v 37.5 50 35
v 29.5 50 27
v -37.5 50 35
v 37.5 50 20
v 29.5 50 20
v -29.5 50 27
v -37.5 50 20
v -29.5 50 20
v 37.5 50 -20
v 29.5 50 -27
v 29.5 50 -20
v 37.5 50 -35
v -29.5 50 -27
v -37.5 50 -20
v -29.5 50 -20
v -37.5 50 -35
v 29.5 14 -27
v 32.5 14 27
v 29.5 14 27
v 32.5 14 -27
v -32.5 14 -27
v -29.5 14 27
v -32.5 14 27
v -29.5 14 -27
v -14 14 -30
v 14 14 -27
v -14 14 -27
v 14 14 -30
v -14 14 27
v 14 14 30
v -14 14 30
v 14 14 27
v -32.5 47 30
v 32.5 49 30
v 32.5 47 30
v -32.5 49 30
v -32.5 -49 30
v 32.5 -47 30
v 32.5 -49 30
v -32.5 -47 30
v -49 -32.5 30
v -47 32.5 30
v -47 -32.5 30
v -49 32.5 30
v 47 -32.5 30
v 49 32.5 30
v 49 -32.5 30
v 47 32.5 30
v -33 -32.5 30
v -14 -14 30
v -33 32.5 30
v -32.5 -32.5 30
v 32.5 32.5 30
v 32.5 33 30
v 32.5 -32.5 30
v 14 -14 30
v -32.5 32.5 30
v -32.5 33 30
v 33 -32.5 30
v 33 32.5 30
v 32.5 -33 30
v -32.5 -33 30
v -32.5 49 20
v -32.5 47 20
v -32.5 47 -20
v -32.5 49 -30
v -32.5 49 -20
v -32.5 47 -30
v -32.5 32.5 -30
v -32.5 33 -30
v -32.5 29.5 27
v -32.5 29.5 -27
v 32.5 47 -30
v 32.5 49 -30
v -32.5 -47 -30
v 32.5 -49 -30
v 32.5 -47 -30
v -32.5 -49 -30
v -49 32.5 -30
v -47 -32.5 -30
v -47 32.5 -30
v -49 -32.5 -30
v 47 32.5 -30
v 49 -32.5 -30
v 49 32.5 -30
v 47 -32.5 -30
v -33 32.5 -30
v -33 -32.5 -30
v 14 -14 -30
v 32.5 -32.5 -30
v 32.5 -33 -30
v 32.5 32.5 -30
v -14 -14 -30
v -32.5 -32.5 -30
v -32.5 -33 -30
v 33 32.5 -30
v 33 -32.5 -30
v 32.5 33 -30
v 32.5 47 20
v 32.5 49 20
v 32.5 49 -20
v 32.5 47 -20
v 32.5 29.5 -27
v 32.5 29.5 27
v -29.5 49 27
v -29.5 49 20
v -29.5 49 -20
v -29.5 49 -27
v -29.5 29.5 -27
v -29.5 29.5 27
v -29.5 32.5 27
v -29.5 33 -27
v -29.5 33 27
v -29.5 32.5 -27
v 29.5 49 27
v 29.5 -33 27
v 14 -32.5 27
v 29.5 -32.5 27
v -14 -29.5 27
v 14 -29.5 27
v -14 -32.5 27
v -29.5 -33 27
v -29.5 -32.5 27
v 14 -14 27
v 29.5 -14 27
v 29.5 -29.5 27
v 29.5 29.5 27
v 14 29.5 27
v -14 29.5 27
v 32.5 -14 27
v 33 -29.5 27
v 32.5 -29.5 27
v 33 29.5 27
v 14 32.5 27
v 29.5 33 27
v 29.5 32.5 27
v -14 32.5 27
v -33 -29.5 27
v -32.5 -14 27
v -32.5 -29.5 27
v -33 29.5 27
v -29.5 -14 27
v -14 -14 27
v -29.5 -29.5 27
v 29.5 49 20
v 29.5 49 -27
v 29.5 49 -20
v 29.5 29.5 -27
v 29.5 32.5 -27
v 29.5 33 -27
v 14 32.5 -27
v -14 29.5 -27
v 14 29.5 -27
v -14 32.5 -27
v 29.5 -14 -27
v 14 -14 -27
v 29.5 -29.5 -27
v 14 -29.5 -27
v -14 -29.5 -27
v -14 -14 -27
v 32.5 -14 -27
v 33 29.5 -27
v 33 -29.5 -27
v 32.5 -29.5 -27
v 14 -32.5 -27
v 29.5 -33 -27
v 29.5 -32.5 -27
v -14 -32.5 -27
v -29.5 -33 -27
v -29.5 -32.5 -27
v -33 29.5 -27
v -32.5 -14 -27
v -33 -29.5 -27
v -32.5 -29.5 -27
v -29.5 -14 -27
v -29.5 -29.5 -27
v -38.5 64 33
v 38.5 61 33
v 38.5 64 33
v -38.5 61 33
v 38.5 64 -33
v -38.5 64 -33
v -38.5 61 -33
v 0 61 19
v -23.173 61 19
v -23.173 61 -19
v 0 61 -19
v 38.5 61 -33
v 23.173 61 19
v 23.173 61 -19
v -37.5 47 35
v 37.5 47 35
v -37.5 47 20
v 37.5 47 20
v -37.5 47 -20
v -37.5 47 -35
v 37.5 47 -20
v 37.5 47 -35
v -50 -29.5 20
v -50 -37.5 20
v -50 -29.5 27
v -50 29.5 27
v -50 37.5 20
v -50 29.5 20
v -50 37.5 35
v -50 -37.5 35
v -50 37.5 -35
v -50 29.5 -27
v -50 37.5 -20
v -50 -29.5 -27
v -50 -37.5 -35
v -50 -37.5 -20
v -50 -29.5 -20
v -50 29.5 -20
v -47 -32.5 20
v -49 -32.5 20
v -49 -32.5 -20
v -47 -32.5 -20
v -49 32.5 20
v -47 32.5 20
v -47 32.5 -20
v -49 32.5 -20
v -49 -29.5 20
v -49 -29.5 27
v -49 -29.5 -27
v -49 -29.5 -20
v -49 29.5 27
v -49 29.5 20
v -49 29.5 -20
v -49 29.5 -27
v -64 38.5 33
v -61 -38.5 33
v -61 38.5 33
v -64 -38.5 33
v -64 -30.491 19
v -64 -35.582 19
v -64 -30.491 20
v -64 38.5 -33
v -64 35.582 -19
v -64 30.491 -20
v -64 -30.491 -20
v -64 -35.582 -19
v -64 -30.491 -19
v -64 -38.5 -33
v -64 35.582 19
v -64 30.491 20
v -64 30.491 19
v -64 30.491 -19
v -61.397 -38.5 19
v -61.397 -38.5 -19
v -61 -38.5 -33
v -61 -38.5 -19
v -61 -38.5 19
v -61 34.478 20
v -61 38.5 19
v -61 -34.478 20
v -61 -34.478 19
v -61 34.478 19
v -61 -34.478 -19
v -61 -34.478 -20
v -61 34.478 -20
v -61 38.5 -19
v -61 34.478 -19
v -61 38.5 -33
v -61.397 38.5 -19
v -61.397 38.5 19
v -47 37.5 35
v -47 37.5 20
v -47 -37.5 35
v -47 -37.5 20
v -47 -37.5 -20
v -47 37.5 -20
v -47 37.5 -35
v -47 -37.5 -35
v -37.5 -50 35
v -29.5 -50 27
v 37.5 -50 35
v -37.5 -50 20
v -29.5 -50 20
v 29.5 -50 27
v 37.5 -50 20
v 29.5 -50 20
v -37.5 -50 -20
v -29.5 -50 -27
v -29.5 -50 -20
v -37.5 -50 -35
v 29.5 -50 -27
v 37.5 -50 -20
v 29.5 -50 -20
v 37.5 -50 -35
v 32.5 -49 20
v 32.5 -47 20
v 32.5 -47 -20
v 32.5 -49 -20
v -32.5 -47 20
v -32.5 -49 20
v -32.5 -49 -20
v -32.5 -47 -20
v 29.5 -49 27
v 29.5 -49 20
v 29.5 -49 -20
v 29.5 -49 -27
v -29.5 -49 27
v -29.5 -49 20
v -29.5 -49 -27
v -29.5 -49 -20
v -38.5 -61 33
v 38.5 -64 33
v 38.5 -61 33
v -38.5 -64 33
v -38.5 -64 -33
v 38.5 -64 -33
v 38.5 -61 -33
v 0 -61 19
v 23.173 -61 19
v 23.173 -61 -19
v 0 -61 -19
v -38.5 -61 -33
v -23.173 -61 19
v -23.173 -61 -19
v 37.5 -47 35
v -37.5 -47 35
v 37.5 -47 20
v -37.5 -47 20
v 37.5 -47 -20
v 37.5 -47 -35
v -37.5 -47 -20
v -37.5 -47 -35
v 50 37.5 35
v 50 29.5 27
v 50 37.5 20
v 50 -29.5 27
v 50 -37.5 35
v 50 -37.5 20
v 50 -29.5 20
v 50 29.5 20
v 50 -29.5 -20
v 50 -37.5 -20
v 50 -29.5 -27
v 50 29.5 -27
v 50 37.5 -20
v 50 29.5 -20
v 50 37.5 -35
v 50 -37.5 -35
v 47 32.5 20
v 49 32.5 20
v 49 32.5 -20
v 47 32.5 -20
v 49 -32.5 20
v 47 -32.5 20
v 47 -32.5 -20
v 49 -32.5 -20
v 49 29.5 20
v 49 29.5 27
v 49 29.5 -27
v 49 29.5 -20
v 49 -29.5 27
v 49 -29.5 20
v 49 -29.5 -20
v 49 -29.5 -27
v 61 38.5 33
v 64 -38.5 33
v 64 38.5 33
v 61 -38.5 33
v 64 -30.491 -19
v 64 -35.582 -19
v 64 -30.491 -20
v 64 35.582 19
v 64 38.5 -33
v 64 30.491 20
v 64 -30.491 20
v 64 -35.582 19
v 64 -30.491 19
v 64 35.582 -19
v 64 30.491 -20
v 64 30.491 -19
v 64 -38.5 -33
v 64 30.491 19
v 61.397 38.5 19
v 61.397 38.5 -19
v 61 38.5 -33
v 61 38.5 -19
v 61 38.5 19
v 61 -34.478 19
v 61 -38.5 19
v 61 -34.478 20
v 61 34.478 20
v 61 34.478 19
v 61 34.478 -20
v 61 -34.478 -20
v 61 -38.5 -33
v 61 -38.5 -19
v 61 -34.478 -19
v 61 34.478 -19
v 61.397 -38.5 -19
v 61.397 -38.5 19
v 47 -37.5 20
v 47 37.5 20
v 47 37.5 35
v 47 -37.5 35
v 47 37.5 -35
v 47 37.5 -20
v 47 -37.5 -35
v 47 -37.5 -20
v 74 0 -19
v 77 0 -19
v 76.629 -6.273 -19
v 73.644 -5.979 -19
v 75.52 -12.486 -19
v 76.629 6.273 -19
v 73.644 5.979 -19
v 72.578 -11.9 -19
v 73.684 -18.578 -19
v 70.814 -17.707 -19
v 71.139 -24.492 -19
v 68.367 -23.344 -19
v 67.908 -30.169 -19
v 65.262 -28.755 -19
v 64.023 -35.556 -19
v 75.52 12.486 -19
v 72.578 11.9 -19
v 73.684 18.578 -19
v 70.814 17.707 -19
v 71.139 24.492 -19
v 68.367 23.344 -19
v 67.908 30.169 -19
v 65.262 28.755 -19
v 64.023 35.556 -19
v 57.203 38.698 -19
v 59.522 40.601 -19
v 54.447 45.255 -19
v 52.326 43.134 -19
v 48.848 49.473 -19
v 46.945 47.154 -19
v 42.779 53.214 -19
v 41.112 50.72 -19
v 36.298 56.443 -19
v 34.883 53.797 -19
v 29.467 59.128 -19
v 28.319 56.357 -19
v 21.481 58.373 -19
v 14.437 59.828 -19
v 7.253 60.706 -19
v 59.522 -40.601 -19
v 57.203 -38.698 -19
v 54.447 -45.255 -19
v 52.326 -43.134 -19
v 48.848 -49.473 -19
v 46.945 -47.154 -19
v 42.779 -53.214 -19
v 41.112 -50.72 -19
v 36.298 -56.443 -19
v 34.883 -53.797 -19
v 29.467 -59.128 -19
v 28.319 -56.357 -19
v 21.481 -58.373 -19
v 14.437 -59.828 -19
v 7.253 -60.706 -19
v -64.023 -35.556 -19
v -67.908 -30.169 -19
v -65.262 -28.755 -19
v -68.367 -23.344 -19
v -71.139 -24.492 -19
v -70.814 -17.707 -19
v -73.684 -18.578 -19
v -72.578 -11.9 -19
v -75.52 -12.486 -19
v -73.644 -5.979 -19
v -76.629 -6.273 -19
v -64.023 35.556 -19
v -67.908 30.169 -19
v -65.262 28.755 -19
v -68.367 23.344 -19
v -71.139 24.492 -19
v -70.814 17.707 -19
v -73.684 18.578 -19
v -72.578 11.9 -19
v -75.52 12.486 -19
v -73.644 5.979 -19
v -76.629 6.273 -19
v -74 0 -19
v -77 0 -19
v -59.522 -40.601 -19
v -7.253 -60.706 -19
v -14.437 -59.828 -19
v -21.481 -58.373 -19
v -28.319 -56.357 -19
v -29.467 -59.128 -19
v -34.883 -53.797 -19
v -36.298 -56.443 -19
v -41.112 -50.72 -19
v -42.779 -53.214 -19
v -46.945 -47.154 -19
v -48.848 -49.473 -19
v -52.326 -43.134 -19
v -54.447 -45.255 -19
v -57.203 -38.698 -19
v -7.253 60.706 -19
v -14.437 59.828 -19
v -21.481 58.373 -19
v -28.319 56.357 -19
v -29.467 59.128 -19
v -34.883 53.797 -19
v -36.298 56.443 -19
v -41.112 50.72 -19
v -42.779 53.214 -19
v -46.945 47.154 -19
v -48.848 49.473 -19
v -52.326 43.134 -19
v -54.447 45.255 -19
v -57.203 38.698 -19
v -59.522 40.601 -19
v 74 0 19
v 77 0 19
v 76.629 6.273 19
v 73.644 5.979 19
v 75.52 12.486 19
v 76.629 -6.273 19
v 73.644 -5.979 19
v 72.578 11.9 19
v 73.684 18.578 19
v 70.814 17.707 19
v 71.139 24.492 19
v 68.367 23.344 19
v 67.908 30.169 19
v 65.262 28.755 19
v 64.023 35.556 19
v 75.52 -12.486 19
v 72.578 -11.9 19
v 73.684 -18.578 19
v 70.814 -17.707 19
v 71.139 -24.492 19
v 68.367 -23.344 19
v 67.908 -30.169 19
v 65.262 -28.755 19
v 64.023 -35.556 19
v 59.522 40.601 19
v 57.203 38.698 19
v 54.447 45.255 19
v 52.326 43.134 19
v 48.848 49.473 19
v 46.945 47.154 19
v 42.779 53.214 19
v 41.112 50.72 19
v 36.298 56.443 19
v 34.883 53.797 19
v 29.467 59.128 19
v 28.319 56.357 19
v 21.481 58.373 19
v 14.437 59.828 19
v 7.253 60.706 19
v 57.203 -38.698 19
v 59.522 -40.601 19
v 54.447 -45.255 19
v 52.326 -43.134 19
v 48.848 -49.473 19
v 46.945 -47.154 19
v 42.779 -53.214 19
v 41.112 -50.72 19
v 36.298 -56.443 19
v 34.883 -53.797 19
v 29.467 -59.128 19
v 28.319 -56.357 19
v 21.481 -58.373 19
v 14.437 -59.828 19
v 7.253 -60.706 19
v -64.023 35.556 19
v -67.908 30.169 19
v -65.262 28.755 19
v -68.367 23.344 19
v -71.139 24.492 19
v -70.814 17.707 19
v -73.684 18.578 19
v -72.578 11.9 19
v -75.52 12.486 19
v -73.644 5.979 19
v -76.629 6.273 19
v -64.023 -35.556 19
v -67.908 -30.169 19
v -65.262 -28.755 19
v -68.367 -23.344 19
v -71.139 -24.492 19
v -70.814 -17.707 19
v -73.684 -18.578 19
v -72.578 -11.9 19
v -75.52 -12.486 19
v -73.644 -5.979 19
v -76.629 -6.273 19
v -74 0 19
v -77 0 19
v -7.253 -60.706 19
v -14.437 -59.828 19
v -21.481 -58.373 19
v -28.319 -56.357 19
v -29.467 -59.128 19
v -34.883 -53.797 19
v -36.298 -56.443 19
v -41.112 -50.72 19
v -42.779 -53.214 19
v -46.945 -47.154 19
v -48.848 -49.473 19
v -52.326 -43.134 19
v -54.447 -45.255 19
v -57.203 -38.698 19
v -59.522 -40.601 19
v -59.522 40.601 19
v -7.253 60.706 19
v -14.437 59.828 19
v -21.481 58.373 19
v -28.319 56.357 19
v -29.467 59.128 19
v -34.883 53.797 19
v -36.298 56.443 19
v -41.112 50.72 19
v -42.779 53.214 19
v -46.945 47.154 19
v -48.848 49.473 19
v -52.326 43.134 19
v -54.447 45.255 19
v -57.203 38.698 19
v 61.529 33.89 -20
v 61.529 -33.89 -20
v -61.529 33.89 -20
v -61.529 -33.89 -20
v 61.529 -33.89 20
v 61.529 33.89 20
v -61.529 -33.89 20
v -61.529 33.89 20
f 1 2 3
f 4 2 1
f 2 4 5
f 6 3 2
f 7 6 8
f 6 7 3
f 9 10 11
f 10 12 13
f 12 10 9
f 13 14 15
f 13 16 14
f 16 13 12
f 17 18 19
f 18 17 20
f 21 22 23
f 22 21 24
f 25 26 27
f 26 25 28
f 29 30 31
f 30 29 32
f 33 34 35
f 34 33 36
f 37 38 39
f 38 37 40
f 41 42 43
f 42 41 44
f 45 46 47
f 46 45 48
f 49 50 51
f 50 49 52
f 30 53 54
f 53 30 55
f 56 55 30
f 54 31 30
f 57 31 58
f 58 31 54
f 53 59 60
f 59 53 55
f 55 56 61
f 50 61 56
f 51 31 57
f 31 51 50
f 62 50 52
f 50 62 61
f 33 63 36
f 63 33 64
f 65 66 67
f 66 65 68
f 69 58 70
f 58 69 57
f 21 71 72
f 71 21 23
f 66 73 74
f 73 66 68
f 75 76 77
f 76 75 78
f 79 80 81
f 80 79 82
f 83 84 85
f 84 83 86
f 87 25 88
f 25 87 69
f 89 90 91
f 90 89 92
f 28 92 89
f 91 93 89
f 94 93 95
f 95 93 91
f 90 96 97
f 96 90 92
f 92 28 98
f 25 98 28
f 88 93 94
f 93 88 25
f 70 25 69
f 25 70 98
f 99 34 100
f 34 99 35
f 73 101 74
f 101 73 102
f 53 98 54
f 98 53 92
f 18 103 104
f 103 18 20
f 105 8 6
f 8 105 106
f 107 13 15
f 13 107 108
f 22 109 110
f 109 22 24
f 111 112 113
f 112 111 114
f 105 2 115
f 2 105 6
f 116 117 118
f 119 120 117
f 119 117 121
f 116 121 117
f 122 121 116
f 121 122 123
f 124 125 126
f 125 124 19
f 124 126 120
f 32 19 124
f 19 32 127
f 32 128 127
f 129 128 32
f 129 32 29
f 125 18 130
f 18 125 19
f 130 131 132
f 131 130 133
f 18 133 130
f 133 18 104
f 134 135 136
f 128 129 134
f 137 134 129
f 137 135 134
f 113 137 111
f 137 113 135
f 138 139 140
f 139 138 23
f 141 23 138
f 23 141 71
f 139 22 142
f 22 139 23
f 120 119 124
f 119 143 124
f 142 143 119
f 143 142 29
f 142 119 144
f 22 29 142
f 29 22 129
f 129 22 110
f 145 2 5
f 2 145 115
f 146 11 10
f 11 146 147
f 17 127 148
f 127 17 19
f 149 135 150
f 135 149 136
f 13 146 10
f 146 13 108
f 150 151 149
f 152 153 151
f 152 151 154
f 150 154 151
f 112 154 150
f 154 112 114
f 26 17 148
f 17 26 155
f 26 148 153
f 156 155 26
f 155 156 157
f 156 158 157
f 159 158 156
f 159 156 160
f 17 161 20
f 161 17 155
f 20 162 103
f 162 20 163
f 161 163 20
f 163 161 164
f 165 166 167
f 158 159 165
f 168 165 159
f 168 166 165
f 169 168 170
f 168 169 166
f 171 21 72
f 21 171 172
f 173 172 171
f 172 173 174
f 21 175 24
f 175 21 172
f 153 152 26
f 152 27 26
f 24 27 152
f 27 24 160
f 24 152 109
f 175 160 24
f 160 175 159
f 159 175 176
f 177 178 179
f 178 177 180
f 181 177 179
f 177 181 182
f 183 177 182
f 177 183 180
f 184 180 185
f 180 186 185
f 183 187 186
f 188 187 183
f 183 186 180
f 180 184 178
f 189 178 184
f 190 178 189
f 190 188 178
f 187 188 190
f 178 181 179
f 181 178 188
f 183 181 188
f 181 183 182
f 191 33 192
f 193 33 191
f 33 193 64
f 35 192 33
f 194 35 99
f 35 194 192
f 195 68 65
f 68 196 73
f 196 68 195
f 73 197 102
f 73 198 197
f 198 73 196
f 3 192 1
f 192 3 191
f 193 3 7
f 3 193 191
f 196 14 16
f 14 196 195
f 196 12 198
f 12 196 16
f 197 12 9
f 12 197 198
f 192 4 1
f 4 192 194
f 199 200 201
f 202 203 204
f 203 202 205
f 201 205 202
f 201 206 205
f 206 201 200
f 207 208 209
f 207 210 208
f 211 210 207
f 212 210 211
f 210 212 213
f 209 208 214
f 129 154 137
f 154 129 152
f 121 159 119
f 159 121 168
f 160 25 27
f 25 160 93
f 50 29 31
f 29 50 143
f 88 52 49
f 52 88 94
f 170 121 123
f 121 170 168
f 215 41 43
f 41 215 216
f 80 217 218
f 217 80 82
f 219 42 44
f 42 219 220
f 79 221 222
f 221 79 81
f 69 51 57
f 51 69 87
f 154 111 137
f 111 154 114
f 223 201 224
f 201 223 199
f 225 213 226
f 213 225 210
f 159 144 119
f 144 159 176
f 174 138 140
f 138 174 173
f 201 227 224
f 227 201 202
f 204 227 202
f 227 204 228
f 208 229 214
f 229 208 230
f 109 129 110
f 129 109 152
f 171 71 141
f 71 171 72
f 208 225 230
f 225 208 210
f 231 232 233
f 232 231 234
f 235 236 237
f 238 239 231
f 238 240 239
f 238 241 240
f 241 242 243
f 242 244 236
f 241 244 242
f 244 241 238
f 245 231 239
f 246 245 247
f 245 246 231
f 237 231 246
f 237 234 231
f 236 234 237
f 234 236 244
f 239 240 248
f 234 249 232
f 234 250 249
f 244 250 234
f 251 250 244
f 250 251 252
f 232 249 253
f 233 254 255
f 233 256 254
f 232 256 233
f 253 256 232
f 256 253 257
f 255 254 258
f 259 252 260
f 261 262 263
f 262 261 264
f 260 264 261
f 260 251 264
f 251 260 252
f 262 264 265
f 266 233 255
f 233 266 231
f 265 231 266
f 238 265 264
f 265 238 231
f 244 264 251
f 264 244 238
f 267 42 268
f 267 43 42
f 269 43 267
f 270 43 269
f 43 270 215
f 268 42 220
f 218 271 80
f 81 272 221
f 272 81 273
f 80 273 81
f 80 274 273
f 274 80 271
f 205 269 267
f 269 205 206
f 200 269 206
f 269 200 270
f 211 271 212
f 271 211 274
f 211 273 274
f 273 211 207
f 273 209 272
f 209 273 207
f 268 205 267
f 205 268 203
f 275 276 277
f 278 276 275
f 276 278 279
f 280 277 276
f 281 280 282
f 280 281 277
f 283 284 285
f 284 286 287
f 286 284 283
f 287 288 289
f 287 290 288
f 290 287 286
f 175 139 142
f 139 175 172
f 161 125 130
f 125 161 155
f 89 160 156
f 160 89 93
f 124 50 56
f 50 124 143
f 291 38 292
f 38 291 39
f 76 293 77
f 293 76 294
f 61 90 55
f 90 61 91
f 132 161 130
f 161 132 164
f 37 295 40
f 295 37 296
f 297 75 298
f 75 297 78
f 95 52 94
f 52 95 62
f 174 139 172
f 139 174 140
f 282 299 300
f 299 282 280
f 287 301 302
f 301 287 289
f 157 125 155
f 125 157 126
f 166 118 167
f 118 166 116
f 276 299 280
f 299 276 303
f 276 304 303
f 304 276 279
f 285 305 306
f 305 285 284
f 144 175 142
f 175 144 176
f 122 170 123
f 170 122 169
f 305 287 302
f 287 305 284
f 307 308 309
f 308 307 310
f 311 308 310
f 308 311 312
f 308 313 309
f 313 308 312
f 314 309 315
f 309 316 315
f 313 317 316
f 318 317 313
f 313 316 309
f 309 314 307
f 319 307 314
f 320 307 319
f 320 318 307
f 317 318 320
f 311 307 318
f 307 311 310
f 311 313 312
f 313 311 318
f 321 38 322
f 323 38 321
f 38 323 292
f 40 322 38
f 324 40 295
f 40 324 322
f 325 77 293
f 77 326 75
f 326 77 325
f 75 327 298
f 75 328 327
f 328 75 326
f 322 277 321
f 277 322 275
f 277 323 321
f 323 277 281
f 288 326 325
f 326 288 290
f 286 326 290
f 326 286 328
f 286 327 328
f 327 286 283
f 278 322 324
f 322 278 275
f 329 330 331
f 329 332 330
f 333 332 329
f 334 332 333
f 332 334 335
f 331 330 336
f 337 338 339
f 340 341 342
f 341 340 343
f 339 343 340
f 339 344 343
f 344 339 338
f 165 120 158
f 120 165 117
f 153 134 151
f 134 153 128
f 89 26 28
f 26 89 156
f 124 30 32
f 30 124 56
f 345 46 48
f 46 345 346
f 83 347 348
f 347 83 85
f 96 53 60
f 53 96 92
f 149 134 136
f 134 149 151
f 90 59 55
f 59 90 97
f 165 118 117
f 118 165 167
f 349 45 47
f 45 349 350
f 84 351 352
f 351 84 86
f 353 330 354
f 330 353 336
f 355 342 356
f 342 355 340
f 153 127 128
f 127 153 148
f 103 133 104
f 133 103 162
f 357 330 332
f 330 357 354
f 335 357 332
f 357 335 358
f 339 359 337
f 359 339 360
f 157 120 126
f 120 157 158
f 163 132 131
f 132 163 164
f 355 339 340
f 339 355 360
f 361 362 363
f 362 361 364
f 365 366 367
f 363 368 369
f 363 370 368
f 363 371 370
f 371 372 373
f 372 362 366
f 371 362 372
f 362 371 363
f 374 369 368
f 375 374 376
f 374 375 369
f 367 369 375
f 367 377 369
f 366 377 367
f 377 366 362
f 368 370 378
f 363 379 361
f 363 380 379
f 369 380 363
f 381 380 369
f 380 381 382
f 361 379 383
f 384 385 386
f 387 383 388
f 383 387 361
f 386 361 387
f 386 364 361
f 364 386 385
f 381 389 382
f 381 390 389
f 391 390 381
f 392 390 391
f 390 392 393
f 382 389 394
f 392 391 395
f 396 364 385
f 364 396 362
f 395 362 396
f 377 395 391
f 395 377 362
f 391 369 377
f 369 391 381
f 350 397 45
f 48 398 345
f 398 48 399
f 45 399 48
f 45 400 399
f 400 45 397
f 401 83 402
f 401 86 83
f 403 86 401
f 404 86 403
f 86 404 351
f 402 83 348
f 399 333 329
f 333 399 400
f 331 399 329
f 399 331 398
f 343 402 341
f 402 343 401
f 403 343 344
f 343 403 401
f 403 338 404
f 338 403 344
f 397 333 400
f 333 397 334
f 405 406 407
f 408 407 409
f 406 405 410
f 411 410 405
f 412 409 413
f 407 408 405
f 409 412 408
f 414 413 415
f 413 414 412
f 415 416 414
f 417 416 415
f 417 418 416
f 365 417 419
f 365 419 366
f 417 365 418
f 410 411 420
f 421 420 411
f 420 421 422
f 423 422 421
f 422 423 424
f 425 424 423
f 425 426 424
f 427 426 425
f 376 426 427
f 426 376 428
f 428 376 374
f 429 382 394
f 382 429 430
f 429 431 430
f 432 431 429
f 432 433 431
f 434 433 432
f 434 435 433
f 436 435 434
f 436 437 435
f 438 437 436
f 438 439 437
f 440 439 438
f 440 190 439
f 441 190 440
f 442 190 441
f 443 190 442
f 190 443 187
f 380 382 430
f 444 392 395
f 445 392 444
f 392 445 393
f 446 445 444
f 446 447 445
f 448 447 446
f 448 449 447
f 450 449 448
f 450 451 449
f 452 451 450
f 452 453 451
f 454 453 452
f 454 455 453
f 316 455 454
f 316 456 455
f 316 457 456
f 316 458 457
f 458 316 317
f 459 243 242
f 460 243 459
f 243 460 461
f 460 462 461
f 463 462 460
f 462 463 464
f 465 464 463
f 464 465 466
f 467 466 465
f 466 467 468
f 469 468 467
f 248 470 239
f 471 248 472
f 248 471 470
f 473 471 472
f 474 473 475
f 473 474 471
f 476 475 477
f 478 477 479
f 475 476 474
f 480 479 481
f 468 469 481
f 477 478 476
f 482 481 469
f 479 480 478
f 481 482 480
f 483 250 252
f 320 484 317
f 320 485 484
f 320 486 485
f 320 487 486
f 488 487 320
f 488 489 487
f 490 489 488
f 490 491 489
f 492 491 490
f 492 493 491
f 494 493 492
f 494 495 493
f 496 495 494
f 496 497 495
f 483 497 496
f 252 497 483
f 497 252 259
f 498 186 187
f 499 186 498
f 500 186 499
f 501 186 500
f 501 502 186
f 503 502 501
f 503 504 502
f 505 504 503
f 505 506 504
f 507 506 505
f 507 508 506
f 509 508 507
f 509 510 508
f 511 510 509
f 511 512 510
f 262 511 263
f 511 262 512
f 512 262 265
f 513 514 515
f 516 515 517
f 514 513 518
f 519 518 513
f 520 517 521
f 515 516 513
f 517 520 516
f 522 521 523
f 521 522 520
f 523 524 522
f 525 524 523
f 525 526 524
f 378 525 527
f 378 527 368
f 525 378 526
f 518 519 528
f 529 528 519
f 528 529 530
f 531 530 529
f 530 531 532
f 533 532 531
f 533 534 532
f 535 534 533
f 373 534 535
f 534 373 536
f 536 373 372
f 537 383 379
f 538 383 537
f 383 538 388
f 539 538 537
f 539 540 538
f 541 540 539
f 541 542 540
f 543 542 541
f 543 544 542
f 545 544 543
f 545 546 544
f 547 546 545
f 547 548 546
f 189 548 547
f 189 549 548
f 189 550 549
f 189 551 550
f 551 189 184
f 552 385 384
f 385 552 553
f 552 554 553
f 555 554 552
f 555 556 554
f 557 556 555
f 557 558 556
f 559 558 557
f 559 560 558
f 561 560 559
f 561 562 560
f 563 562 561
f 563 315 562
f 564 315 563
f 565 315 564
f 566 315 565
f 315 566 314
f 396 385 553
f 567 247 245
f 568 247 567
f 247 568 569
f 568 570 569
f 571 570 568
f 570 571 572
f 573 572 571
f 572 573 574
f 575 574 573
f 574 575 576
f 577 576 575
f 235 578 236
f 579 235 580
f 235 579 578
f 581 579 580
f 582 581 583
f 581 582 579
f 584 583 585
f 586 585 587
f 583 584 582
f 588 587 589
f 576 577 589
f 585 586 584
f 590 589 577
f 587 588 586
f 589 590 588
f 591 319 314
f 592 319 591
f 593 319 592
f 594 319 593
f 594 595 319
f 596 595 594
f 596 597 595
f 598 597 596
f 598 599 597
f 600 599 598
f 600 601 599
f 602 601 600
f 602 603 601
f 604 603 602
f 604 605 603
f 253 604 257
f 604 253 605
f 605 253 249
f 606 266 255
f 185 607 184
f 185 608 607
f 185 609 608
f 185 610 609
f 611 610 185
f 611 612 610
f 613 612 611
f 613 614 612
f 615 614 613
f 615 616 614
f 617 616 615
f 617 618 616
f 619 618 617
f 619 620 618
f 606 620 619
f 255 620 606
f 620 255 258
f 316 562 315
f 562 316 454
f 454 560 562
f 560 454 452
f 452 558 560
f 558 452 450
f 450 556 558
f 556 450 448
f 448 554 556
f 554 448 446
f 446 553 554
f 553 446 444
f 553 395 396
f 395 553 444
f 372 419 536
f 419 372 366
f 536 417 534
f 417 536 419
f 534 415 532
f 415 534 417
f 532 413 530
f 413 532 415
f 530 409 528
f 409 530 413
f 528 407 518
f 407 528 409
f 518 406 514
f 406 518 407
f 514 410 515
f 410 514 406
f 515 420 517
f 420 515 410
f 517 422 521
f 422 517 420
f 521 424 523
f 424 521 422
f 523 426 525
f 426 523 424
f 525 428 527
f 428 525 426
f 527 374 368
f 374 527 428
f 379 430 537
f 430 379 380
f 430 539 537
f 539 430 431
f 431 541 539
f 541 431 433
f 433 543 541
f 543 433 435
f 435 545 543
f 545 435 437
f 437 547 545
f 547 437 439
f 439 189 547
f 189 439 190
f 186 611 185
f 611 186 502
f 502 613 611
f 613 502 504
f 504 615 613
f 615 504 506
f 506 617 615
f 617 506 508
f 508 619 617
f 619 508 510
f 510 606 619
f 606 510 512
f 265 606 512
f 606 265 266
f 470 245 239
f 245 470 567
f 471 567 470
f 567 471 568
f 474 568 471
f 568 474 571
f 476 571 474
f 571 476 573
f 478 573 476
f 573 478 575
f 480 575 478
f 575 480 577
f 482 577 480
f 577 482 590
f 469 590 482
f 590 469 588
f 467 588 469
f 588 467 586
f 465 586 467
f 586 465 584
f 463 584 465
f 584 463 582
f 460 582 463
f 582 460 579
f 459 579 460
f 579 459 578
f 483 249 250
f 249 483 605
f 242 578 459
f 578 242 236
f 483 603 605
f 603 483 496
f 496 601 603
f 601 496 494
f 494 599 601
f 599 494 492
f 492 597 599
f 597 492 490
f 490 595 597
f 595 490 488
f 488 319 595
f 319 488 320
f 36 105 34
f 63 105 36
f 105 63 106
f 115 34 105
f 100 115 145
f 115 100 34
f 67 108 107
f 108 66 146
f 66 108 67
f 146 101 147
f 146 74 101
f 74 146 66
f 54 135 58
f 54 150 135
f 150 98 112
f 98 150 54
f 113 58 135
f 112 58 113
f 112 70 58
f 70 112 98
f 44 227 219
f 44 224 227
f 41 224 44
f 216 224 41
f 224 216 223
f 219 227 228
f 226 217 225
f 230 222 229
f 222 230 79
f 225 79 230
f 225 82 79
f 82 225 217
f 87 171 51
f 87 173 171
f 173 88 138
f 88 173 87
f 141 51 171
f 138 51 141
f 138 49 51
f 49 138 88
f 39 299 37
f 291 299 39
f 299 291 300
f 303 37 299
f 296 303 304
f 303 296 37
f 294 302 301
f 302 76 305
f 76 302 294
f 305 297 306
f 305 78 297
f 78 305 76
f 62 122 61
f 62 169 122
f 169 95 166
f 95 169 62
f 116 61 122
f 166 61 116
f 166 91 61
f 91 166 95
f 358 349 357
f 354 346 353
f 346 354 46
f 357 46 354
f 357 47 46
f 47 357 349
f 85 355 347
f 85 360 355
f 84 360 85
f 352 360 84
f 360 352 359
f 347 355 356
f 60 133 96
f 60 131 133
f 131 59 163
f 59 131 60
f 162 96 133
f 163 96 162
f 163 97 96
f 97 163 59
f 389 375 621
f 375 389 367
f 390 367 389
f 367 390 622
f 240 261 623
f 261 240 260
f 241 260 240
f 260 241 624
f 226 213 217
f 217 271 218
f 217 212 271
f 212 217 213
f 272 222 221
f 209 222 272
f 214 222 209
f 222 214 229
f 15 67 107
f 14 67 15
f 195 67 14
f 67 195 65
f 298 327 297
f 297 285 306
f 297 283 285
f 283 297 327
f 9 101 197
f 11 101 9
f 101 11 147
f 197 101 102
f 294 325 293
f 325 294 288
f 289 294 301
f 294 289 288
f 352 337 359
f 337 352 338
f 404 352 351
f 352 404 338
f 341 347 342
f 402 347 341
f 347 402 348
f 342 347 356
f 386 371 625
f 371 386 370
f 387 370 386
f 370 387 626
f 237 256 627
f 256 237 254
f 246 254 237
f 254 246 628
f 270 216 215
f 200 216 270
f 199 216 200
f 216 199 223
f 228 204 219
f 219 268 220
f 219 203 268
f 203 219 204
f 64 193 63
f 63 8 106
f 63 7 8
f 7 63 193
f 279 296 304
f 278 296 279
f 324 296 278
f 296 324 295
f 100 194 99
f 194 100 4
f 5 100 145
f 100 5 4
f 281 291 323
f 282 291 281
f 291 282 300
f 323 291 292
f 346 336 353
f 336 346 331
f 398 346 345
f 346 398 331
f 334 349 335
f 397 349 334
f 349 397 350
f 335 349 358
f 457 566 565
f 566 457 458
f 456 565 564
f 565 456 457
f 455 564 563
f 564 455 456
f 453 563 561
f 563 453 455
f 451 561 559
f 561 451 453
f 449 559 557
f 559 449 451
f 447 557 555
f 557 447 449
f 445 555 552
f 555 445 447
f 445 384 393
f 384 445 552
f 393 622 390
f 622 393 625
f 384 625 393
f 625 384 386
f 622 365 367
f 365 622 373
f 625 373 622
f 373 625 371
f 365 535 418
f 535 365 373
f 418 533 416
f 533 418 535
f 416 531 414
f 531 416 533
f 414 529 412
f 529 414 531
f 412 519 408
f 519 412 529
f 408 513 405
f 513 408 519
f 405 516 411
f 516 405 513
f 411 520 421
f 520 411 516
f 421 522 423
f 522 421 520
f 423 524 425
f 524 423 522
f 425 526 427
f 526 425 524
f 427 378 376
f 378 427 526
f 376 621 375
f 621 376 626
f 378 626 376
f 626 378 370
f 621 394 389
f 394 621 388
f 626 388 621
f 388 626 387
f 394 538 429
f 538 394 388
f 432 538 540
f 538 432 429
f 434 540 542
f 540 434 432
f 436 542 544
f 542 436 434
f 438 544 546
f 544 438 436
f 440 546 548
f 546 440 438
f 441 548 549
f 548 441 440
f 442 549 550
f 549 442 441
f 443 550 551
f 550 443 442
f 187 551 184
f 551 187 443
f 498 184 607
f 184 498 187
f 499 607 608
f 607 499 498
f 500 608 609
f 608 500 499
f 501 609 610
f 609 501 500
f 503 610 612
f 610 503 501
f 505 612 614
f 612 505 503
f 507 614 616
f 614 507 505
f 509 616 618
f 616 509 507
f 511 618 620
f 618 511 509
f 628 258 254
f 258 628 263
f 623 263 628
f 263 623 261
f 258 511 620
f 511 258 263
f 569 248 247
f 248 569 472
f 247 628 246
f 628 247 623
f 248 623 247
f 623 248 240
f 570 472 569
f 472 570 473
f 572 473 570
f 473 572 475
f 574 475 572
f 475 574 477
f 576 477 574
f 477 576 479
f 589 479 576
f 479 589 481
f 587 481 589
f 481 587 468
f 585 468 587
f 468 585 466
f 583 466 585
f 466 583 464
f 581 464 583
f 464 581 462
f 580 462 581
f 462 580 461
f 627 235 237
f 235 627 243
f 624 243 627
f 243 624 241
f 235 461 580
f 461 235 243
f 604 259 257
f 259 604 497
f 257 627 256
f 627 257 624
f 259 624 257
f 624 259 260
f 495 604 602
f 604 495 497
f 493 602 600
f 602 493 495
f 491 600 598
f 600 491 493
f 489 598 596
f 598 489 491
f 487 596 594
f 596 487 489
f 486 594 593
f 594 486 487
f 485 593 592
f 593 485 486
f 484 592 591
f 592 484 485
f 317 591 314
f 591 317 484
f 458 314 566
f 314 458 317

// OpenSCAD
// s_neck_intake_frame.scad
// CF-PETG structural intake frame ring for Serenity Rev N 24" hull
// Bonds into the 4 scoop cutouts at the neck station (~310mm from nose)
// Print in CF-PETG; bond with structural epoxy.
//
// Coordinate origin: centre of the ring on the fuselage centreline axis.
// +X = forward (toward nose); fuselage axis = Z when printed upright.

// ── Hull cross-section at neck station (24" scale) ──────────────────────────
HULL_W2  = 63;     // port/stbd half-width at station 310mm  [mm]
HULL_H2  = 50;     // dorsal/ventral half-height (elliptical) [mm]
HULL_WL  = 126;    // full width
HULL_HL  = 100;    // full height

// ── Scoop window dimensions ──────────────────────────────────────────────────
SCOOP_W  = 65;     // circumferential width of each scoop cutout [mm]
SCOOP_H  = 60;     // radial height of each scoop cutout         [mm]

// ── Frame geometry ───────────────────────────────────────────────────────────
FRAME_AX = 38;     // axial length of frame ring                 [mm]
FRAME_RD = 14;     // radial depth of frame collar               [mm]
WALL     =  3;     // CF-PETG wall thickness                     [mm]
TONGUE_D =  5;     // tongue depth inserting into hull cutout    [mm]
SHOULDER =  5;     // bonding shoulder pressing on hull exterior  [mm]
LIP      =  6;     // forward aerodynamic lip projection          [mm]
DUCT_L   = 22;     // internal duct arm length inward (→ plenum) [mm]

// ── Derived ─────────────────────────────────────────────────────────────────
$fn = 64;
HALF_AX  = FRAME_AX / 2;

// ── Main module ─────────────────────────────────────────────────────────────
module neck_intake_frame() {
    difference() {
        union() {
            _elliptical_collar();
            for (a = [0, 90, 180, 270])
                rotate([0, 0, a]) _scoop_duct();
        }
        // Cut the 4 scoop windows through the collar
        for (a = [0, 90, 180, 270])
            rotate([0, 0, a]) _scoop_window();
        // Hollow the collar interior (leave WALL-thick walls)
        _collar_hollow();
    }
}

// Elliptical ring collar that matches hull outer profile + FRAME_RD
module _elliptical_collar() {
    linear_extrude(height = FRAME_AX, center = true)
    difference() {
        // Outer ellipse: hull outer surface + frame radial depth
        scale([(HULL_W2 + FRAME_RD) / HULL_W2,
               (HULL_H2 + FRAME_RD) / HULL_H2])
            ellipse(HULL_W2, HULL_H2);
        // Inner cut: hull outer surface (frame sits on hull exterior)
        ellipse(HULL_W2, HULL_H2);
    }
}

// Thin-wall hollow inside the collar (keep WALL thickness)
module _collar_hollow() {
    linear_extrude(height = FRAME_AX + 2, center = true)
    difference() {
        scale([(HULL_W2 + FRAME_RD - WALL) / HULL_W2,
               (HULL_H2 + FRAME_RD - WALL) / HULL_H2])
            ellipse(HULL_W2, HULL_H2);
        ellipse(HULL_W2 - WALL, HULL_H2 - WALL);
    }
}

// One scoop duct arm (placed pointing +Y before rotation)
// Extends radially inward from the collar opening toward the plenum
module _scoop_duct() {
    // Duct arm: rectangular tube from hull inner wall to plenum centre
    translate([0, HULL_H2, 0])
    rotate([90, 0, 0])
    linear_extrude(height = DUCT_L + FRAME_RD)
    difference() {
        square([SCOOP_W, SCOOP_H], center = true);
        square([SCOOP_W - 2*WALL, SCOOP_H - 2*WALL], center = true);
    }

    // Aerodynamic intake lip on forward edge
    translate([0, HULL_H2 + FRAME_RD, 0])
    rotate([90, 0, 0])
    linear_extrude(height = WALL)
    hull() {
        square([SCOOP_W, SCOOP_H], center = true);
        square([SCOOP_W + LIP*2, SCOOP_H + LIP], center = true);
    }

    // Registration tongue: projects into hull cutout (thin, snug fit)
    translate([0, HULL_H2 - TONGUE_D, 0])
    rotate([90, 0, 0])
    linear_extrude(height = TONGUE_D)
    square([SCOOP_W - 0.4, SCOOP_H - 0.4], center = true);  // 0.2mm clearance

    // Bonding shoulder: flange pressing on hull exterior
    translate([0, HULL_H2, 0])
    rotate([90, 0, 0])
    linear_extrude(height = WALL)
    difference() {
        square([SCOOP_W + SHOULDER*2, SCOOP_H + SHOULDER*2], center = true);
        square([SCOOP_W, SCOOP_H], center = true);
    }
}

// Window cut through collar at each scoop position
module _scoop_window() {
    translate([0, HULL_H2 - 1, 0])
    rotate([90, 0, 0])
    linear_extrude(height = FRAME_RD + 2)
    square([SCOOP_W, SCOOP_H], center = true);
}

// Helper: 2D ellipse
module ellipse(rx, ry) {
    scale([rx, ry]) circle(r = 1);
}

neck_intake_frame();
